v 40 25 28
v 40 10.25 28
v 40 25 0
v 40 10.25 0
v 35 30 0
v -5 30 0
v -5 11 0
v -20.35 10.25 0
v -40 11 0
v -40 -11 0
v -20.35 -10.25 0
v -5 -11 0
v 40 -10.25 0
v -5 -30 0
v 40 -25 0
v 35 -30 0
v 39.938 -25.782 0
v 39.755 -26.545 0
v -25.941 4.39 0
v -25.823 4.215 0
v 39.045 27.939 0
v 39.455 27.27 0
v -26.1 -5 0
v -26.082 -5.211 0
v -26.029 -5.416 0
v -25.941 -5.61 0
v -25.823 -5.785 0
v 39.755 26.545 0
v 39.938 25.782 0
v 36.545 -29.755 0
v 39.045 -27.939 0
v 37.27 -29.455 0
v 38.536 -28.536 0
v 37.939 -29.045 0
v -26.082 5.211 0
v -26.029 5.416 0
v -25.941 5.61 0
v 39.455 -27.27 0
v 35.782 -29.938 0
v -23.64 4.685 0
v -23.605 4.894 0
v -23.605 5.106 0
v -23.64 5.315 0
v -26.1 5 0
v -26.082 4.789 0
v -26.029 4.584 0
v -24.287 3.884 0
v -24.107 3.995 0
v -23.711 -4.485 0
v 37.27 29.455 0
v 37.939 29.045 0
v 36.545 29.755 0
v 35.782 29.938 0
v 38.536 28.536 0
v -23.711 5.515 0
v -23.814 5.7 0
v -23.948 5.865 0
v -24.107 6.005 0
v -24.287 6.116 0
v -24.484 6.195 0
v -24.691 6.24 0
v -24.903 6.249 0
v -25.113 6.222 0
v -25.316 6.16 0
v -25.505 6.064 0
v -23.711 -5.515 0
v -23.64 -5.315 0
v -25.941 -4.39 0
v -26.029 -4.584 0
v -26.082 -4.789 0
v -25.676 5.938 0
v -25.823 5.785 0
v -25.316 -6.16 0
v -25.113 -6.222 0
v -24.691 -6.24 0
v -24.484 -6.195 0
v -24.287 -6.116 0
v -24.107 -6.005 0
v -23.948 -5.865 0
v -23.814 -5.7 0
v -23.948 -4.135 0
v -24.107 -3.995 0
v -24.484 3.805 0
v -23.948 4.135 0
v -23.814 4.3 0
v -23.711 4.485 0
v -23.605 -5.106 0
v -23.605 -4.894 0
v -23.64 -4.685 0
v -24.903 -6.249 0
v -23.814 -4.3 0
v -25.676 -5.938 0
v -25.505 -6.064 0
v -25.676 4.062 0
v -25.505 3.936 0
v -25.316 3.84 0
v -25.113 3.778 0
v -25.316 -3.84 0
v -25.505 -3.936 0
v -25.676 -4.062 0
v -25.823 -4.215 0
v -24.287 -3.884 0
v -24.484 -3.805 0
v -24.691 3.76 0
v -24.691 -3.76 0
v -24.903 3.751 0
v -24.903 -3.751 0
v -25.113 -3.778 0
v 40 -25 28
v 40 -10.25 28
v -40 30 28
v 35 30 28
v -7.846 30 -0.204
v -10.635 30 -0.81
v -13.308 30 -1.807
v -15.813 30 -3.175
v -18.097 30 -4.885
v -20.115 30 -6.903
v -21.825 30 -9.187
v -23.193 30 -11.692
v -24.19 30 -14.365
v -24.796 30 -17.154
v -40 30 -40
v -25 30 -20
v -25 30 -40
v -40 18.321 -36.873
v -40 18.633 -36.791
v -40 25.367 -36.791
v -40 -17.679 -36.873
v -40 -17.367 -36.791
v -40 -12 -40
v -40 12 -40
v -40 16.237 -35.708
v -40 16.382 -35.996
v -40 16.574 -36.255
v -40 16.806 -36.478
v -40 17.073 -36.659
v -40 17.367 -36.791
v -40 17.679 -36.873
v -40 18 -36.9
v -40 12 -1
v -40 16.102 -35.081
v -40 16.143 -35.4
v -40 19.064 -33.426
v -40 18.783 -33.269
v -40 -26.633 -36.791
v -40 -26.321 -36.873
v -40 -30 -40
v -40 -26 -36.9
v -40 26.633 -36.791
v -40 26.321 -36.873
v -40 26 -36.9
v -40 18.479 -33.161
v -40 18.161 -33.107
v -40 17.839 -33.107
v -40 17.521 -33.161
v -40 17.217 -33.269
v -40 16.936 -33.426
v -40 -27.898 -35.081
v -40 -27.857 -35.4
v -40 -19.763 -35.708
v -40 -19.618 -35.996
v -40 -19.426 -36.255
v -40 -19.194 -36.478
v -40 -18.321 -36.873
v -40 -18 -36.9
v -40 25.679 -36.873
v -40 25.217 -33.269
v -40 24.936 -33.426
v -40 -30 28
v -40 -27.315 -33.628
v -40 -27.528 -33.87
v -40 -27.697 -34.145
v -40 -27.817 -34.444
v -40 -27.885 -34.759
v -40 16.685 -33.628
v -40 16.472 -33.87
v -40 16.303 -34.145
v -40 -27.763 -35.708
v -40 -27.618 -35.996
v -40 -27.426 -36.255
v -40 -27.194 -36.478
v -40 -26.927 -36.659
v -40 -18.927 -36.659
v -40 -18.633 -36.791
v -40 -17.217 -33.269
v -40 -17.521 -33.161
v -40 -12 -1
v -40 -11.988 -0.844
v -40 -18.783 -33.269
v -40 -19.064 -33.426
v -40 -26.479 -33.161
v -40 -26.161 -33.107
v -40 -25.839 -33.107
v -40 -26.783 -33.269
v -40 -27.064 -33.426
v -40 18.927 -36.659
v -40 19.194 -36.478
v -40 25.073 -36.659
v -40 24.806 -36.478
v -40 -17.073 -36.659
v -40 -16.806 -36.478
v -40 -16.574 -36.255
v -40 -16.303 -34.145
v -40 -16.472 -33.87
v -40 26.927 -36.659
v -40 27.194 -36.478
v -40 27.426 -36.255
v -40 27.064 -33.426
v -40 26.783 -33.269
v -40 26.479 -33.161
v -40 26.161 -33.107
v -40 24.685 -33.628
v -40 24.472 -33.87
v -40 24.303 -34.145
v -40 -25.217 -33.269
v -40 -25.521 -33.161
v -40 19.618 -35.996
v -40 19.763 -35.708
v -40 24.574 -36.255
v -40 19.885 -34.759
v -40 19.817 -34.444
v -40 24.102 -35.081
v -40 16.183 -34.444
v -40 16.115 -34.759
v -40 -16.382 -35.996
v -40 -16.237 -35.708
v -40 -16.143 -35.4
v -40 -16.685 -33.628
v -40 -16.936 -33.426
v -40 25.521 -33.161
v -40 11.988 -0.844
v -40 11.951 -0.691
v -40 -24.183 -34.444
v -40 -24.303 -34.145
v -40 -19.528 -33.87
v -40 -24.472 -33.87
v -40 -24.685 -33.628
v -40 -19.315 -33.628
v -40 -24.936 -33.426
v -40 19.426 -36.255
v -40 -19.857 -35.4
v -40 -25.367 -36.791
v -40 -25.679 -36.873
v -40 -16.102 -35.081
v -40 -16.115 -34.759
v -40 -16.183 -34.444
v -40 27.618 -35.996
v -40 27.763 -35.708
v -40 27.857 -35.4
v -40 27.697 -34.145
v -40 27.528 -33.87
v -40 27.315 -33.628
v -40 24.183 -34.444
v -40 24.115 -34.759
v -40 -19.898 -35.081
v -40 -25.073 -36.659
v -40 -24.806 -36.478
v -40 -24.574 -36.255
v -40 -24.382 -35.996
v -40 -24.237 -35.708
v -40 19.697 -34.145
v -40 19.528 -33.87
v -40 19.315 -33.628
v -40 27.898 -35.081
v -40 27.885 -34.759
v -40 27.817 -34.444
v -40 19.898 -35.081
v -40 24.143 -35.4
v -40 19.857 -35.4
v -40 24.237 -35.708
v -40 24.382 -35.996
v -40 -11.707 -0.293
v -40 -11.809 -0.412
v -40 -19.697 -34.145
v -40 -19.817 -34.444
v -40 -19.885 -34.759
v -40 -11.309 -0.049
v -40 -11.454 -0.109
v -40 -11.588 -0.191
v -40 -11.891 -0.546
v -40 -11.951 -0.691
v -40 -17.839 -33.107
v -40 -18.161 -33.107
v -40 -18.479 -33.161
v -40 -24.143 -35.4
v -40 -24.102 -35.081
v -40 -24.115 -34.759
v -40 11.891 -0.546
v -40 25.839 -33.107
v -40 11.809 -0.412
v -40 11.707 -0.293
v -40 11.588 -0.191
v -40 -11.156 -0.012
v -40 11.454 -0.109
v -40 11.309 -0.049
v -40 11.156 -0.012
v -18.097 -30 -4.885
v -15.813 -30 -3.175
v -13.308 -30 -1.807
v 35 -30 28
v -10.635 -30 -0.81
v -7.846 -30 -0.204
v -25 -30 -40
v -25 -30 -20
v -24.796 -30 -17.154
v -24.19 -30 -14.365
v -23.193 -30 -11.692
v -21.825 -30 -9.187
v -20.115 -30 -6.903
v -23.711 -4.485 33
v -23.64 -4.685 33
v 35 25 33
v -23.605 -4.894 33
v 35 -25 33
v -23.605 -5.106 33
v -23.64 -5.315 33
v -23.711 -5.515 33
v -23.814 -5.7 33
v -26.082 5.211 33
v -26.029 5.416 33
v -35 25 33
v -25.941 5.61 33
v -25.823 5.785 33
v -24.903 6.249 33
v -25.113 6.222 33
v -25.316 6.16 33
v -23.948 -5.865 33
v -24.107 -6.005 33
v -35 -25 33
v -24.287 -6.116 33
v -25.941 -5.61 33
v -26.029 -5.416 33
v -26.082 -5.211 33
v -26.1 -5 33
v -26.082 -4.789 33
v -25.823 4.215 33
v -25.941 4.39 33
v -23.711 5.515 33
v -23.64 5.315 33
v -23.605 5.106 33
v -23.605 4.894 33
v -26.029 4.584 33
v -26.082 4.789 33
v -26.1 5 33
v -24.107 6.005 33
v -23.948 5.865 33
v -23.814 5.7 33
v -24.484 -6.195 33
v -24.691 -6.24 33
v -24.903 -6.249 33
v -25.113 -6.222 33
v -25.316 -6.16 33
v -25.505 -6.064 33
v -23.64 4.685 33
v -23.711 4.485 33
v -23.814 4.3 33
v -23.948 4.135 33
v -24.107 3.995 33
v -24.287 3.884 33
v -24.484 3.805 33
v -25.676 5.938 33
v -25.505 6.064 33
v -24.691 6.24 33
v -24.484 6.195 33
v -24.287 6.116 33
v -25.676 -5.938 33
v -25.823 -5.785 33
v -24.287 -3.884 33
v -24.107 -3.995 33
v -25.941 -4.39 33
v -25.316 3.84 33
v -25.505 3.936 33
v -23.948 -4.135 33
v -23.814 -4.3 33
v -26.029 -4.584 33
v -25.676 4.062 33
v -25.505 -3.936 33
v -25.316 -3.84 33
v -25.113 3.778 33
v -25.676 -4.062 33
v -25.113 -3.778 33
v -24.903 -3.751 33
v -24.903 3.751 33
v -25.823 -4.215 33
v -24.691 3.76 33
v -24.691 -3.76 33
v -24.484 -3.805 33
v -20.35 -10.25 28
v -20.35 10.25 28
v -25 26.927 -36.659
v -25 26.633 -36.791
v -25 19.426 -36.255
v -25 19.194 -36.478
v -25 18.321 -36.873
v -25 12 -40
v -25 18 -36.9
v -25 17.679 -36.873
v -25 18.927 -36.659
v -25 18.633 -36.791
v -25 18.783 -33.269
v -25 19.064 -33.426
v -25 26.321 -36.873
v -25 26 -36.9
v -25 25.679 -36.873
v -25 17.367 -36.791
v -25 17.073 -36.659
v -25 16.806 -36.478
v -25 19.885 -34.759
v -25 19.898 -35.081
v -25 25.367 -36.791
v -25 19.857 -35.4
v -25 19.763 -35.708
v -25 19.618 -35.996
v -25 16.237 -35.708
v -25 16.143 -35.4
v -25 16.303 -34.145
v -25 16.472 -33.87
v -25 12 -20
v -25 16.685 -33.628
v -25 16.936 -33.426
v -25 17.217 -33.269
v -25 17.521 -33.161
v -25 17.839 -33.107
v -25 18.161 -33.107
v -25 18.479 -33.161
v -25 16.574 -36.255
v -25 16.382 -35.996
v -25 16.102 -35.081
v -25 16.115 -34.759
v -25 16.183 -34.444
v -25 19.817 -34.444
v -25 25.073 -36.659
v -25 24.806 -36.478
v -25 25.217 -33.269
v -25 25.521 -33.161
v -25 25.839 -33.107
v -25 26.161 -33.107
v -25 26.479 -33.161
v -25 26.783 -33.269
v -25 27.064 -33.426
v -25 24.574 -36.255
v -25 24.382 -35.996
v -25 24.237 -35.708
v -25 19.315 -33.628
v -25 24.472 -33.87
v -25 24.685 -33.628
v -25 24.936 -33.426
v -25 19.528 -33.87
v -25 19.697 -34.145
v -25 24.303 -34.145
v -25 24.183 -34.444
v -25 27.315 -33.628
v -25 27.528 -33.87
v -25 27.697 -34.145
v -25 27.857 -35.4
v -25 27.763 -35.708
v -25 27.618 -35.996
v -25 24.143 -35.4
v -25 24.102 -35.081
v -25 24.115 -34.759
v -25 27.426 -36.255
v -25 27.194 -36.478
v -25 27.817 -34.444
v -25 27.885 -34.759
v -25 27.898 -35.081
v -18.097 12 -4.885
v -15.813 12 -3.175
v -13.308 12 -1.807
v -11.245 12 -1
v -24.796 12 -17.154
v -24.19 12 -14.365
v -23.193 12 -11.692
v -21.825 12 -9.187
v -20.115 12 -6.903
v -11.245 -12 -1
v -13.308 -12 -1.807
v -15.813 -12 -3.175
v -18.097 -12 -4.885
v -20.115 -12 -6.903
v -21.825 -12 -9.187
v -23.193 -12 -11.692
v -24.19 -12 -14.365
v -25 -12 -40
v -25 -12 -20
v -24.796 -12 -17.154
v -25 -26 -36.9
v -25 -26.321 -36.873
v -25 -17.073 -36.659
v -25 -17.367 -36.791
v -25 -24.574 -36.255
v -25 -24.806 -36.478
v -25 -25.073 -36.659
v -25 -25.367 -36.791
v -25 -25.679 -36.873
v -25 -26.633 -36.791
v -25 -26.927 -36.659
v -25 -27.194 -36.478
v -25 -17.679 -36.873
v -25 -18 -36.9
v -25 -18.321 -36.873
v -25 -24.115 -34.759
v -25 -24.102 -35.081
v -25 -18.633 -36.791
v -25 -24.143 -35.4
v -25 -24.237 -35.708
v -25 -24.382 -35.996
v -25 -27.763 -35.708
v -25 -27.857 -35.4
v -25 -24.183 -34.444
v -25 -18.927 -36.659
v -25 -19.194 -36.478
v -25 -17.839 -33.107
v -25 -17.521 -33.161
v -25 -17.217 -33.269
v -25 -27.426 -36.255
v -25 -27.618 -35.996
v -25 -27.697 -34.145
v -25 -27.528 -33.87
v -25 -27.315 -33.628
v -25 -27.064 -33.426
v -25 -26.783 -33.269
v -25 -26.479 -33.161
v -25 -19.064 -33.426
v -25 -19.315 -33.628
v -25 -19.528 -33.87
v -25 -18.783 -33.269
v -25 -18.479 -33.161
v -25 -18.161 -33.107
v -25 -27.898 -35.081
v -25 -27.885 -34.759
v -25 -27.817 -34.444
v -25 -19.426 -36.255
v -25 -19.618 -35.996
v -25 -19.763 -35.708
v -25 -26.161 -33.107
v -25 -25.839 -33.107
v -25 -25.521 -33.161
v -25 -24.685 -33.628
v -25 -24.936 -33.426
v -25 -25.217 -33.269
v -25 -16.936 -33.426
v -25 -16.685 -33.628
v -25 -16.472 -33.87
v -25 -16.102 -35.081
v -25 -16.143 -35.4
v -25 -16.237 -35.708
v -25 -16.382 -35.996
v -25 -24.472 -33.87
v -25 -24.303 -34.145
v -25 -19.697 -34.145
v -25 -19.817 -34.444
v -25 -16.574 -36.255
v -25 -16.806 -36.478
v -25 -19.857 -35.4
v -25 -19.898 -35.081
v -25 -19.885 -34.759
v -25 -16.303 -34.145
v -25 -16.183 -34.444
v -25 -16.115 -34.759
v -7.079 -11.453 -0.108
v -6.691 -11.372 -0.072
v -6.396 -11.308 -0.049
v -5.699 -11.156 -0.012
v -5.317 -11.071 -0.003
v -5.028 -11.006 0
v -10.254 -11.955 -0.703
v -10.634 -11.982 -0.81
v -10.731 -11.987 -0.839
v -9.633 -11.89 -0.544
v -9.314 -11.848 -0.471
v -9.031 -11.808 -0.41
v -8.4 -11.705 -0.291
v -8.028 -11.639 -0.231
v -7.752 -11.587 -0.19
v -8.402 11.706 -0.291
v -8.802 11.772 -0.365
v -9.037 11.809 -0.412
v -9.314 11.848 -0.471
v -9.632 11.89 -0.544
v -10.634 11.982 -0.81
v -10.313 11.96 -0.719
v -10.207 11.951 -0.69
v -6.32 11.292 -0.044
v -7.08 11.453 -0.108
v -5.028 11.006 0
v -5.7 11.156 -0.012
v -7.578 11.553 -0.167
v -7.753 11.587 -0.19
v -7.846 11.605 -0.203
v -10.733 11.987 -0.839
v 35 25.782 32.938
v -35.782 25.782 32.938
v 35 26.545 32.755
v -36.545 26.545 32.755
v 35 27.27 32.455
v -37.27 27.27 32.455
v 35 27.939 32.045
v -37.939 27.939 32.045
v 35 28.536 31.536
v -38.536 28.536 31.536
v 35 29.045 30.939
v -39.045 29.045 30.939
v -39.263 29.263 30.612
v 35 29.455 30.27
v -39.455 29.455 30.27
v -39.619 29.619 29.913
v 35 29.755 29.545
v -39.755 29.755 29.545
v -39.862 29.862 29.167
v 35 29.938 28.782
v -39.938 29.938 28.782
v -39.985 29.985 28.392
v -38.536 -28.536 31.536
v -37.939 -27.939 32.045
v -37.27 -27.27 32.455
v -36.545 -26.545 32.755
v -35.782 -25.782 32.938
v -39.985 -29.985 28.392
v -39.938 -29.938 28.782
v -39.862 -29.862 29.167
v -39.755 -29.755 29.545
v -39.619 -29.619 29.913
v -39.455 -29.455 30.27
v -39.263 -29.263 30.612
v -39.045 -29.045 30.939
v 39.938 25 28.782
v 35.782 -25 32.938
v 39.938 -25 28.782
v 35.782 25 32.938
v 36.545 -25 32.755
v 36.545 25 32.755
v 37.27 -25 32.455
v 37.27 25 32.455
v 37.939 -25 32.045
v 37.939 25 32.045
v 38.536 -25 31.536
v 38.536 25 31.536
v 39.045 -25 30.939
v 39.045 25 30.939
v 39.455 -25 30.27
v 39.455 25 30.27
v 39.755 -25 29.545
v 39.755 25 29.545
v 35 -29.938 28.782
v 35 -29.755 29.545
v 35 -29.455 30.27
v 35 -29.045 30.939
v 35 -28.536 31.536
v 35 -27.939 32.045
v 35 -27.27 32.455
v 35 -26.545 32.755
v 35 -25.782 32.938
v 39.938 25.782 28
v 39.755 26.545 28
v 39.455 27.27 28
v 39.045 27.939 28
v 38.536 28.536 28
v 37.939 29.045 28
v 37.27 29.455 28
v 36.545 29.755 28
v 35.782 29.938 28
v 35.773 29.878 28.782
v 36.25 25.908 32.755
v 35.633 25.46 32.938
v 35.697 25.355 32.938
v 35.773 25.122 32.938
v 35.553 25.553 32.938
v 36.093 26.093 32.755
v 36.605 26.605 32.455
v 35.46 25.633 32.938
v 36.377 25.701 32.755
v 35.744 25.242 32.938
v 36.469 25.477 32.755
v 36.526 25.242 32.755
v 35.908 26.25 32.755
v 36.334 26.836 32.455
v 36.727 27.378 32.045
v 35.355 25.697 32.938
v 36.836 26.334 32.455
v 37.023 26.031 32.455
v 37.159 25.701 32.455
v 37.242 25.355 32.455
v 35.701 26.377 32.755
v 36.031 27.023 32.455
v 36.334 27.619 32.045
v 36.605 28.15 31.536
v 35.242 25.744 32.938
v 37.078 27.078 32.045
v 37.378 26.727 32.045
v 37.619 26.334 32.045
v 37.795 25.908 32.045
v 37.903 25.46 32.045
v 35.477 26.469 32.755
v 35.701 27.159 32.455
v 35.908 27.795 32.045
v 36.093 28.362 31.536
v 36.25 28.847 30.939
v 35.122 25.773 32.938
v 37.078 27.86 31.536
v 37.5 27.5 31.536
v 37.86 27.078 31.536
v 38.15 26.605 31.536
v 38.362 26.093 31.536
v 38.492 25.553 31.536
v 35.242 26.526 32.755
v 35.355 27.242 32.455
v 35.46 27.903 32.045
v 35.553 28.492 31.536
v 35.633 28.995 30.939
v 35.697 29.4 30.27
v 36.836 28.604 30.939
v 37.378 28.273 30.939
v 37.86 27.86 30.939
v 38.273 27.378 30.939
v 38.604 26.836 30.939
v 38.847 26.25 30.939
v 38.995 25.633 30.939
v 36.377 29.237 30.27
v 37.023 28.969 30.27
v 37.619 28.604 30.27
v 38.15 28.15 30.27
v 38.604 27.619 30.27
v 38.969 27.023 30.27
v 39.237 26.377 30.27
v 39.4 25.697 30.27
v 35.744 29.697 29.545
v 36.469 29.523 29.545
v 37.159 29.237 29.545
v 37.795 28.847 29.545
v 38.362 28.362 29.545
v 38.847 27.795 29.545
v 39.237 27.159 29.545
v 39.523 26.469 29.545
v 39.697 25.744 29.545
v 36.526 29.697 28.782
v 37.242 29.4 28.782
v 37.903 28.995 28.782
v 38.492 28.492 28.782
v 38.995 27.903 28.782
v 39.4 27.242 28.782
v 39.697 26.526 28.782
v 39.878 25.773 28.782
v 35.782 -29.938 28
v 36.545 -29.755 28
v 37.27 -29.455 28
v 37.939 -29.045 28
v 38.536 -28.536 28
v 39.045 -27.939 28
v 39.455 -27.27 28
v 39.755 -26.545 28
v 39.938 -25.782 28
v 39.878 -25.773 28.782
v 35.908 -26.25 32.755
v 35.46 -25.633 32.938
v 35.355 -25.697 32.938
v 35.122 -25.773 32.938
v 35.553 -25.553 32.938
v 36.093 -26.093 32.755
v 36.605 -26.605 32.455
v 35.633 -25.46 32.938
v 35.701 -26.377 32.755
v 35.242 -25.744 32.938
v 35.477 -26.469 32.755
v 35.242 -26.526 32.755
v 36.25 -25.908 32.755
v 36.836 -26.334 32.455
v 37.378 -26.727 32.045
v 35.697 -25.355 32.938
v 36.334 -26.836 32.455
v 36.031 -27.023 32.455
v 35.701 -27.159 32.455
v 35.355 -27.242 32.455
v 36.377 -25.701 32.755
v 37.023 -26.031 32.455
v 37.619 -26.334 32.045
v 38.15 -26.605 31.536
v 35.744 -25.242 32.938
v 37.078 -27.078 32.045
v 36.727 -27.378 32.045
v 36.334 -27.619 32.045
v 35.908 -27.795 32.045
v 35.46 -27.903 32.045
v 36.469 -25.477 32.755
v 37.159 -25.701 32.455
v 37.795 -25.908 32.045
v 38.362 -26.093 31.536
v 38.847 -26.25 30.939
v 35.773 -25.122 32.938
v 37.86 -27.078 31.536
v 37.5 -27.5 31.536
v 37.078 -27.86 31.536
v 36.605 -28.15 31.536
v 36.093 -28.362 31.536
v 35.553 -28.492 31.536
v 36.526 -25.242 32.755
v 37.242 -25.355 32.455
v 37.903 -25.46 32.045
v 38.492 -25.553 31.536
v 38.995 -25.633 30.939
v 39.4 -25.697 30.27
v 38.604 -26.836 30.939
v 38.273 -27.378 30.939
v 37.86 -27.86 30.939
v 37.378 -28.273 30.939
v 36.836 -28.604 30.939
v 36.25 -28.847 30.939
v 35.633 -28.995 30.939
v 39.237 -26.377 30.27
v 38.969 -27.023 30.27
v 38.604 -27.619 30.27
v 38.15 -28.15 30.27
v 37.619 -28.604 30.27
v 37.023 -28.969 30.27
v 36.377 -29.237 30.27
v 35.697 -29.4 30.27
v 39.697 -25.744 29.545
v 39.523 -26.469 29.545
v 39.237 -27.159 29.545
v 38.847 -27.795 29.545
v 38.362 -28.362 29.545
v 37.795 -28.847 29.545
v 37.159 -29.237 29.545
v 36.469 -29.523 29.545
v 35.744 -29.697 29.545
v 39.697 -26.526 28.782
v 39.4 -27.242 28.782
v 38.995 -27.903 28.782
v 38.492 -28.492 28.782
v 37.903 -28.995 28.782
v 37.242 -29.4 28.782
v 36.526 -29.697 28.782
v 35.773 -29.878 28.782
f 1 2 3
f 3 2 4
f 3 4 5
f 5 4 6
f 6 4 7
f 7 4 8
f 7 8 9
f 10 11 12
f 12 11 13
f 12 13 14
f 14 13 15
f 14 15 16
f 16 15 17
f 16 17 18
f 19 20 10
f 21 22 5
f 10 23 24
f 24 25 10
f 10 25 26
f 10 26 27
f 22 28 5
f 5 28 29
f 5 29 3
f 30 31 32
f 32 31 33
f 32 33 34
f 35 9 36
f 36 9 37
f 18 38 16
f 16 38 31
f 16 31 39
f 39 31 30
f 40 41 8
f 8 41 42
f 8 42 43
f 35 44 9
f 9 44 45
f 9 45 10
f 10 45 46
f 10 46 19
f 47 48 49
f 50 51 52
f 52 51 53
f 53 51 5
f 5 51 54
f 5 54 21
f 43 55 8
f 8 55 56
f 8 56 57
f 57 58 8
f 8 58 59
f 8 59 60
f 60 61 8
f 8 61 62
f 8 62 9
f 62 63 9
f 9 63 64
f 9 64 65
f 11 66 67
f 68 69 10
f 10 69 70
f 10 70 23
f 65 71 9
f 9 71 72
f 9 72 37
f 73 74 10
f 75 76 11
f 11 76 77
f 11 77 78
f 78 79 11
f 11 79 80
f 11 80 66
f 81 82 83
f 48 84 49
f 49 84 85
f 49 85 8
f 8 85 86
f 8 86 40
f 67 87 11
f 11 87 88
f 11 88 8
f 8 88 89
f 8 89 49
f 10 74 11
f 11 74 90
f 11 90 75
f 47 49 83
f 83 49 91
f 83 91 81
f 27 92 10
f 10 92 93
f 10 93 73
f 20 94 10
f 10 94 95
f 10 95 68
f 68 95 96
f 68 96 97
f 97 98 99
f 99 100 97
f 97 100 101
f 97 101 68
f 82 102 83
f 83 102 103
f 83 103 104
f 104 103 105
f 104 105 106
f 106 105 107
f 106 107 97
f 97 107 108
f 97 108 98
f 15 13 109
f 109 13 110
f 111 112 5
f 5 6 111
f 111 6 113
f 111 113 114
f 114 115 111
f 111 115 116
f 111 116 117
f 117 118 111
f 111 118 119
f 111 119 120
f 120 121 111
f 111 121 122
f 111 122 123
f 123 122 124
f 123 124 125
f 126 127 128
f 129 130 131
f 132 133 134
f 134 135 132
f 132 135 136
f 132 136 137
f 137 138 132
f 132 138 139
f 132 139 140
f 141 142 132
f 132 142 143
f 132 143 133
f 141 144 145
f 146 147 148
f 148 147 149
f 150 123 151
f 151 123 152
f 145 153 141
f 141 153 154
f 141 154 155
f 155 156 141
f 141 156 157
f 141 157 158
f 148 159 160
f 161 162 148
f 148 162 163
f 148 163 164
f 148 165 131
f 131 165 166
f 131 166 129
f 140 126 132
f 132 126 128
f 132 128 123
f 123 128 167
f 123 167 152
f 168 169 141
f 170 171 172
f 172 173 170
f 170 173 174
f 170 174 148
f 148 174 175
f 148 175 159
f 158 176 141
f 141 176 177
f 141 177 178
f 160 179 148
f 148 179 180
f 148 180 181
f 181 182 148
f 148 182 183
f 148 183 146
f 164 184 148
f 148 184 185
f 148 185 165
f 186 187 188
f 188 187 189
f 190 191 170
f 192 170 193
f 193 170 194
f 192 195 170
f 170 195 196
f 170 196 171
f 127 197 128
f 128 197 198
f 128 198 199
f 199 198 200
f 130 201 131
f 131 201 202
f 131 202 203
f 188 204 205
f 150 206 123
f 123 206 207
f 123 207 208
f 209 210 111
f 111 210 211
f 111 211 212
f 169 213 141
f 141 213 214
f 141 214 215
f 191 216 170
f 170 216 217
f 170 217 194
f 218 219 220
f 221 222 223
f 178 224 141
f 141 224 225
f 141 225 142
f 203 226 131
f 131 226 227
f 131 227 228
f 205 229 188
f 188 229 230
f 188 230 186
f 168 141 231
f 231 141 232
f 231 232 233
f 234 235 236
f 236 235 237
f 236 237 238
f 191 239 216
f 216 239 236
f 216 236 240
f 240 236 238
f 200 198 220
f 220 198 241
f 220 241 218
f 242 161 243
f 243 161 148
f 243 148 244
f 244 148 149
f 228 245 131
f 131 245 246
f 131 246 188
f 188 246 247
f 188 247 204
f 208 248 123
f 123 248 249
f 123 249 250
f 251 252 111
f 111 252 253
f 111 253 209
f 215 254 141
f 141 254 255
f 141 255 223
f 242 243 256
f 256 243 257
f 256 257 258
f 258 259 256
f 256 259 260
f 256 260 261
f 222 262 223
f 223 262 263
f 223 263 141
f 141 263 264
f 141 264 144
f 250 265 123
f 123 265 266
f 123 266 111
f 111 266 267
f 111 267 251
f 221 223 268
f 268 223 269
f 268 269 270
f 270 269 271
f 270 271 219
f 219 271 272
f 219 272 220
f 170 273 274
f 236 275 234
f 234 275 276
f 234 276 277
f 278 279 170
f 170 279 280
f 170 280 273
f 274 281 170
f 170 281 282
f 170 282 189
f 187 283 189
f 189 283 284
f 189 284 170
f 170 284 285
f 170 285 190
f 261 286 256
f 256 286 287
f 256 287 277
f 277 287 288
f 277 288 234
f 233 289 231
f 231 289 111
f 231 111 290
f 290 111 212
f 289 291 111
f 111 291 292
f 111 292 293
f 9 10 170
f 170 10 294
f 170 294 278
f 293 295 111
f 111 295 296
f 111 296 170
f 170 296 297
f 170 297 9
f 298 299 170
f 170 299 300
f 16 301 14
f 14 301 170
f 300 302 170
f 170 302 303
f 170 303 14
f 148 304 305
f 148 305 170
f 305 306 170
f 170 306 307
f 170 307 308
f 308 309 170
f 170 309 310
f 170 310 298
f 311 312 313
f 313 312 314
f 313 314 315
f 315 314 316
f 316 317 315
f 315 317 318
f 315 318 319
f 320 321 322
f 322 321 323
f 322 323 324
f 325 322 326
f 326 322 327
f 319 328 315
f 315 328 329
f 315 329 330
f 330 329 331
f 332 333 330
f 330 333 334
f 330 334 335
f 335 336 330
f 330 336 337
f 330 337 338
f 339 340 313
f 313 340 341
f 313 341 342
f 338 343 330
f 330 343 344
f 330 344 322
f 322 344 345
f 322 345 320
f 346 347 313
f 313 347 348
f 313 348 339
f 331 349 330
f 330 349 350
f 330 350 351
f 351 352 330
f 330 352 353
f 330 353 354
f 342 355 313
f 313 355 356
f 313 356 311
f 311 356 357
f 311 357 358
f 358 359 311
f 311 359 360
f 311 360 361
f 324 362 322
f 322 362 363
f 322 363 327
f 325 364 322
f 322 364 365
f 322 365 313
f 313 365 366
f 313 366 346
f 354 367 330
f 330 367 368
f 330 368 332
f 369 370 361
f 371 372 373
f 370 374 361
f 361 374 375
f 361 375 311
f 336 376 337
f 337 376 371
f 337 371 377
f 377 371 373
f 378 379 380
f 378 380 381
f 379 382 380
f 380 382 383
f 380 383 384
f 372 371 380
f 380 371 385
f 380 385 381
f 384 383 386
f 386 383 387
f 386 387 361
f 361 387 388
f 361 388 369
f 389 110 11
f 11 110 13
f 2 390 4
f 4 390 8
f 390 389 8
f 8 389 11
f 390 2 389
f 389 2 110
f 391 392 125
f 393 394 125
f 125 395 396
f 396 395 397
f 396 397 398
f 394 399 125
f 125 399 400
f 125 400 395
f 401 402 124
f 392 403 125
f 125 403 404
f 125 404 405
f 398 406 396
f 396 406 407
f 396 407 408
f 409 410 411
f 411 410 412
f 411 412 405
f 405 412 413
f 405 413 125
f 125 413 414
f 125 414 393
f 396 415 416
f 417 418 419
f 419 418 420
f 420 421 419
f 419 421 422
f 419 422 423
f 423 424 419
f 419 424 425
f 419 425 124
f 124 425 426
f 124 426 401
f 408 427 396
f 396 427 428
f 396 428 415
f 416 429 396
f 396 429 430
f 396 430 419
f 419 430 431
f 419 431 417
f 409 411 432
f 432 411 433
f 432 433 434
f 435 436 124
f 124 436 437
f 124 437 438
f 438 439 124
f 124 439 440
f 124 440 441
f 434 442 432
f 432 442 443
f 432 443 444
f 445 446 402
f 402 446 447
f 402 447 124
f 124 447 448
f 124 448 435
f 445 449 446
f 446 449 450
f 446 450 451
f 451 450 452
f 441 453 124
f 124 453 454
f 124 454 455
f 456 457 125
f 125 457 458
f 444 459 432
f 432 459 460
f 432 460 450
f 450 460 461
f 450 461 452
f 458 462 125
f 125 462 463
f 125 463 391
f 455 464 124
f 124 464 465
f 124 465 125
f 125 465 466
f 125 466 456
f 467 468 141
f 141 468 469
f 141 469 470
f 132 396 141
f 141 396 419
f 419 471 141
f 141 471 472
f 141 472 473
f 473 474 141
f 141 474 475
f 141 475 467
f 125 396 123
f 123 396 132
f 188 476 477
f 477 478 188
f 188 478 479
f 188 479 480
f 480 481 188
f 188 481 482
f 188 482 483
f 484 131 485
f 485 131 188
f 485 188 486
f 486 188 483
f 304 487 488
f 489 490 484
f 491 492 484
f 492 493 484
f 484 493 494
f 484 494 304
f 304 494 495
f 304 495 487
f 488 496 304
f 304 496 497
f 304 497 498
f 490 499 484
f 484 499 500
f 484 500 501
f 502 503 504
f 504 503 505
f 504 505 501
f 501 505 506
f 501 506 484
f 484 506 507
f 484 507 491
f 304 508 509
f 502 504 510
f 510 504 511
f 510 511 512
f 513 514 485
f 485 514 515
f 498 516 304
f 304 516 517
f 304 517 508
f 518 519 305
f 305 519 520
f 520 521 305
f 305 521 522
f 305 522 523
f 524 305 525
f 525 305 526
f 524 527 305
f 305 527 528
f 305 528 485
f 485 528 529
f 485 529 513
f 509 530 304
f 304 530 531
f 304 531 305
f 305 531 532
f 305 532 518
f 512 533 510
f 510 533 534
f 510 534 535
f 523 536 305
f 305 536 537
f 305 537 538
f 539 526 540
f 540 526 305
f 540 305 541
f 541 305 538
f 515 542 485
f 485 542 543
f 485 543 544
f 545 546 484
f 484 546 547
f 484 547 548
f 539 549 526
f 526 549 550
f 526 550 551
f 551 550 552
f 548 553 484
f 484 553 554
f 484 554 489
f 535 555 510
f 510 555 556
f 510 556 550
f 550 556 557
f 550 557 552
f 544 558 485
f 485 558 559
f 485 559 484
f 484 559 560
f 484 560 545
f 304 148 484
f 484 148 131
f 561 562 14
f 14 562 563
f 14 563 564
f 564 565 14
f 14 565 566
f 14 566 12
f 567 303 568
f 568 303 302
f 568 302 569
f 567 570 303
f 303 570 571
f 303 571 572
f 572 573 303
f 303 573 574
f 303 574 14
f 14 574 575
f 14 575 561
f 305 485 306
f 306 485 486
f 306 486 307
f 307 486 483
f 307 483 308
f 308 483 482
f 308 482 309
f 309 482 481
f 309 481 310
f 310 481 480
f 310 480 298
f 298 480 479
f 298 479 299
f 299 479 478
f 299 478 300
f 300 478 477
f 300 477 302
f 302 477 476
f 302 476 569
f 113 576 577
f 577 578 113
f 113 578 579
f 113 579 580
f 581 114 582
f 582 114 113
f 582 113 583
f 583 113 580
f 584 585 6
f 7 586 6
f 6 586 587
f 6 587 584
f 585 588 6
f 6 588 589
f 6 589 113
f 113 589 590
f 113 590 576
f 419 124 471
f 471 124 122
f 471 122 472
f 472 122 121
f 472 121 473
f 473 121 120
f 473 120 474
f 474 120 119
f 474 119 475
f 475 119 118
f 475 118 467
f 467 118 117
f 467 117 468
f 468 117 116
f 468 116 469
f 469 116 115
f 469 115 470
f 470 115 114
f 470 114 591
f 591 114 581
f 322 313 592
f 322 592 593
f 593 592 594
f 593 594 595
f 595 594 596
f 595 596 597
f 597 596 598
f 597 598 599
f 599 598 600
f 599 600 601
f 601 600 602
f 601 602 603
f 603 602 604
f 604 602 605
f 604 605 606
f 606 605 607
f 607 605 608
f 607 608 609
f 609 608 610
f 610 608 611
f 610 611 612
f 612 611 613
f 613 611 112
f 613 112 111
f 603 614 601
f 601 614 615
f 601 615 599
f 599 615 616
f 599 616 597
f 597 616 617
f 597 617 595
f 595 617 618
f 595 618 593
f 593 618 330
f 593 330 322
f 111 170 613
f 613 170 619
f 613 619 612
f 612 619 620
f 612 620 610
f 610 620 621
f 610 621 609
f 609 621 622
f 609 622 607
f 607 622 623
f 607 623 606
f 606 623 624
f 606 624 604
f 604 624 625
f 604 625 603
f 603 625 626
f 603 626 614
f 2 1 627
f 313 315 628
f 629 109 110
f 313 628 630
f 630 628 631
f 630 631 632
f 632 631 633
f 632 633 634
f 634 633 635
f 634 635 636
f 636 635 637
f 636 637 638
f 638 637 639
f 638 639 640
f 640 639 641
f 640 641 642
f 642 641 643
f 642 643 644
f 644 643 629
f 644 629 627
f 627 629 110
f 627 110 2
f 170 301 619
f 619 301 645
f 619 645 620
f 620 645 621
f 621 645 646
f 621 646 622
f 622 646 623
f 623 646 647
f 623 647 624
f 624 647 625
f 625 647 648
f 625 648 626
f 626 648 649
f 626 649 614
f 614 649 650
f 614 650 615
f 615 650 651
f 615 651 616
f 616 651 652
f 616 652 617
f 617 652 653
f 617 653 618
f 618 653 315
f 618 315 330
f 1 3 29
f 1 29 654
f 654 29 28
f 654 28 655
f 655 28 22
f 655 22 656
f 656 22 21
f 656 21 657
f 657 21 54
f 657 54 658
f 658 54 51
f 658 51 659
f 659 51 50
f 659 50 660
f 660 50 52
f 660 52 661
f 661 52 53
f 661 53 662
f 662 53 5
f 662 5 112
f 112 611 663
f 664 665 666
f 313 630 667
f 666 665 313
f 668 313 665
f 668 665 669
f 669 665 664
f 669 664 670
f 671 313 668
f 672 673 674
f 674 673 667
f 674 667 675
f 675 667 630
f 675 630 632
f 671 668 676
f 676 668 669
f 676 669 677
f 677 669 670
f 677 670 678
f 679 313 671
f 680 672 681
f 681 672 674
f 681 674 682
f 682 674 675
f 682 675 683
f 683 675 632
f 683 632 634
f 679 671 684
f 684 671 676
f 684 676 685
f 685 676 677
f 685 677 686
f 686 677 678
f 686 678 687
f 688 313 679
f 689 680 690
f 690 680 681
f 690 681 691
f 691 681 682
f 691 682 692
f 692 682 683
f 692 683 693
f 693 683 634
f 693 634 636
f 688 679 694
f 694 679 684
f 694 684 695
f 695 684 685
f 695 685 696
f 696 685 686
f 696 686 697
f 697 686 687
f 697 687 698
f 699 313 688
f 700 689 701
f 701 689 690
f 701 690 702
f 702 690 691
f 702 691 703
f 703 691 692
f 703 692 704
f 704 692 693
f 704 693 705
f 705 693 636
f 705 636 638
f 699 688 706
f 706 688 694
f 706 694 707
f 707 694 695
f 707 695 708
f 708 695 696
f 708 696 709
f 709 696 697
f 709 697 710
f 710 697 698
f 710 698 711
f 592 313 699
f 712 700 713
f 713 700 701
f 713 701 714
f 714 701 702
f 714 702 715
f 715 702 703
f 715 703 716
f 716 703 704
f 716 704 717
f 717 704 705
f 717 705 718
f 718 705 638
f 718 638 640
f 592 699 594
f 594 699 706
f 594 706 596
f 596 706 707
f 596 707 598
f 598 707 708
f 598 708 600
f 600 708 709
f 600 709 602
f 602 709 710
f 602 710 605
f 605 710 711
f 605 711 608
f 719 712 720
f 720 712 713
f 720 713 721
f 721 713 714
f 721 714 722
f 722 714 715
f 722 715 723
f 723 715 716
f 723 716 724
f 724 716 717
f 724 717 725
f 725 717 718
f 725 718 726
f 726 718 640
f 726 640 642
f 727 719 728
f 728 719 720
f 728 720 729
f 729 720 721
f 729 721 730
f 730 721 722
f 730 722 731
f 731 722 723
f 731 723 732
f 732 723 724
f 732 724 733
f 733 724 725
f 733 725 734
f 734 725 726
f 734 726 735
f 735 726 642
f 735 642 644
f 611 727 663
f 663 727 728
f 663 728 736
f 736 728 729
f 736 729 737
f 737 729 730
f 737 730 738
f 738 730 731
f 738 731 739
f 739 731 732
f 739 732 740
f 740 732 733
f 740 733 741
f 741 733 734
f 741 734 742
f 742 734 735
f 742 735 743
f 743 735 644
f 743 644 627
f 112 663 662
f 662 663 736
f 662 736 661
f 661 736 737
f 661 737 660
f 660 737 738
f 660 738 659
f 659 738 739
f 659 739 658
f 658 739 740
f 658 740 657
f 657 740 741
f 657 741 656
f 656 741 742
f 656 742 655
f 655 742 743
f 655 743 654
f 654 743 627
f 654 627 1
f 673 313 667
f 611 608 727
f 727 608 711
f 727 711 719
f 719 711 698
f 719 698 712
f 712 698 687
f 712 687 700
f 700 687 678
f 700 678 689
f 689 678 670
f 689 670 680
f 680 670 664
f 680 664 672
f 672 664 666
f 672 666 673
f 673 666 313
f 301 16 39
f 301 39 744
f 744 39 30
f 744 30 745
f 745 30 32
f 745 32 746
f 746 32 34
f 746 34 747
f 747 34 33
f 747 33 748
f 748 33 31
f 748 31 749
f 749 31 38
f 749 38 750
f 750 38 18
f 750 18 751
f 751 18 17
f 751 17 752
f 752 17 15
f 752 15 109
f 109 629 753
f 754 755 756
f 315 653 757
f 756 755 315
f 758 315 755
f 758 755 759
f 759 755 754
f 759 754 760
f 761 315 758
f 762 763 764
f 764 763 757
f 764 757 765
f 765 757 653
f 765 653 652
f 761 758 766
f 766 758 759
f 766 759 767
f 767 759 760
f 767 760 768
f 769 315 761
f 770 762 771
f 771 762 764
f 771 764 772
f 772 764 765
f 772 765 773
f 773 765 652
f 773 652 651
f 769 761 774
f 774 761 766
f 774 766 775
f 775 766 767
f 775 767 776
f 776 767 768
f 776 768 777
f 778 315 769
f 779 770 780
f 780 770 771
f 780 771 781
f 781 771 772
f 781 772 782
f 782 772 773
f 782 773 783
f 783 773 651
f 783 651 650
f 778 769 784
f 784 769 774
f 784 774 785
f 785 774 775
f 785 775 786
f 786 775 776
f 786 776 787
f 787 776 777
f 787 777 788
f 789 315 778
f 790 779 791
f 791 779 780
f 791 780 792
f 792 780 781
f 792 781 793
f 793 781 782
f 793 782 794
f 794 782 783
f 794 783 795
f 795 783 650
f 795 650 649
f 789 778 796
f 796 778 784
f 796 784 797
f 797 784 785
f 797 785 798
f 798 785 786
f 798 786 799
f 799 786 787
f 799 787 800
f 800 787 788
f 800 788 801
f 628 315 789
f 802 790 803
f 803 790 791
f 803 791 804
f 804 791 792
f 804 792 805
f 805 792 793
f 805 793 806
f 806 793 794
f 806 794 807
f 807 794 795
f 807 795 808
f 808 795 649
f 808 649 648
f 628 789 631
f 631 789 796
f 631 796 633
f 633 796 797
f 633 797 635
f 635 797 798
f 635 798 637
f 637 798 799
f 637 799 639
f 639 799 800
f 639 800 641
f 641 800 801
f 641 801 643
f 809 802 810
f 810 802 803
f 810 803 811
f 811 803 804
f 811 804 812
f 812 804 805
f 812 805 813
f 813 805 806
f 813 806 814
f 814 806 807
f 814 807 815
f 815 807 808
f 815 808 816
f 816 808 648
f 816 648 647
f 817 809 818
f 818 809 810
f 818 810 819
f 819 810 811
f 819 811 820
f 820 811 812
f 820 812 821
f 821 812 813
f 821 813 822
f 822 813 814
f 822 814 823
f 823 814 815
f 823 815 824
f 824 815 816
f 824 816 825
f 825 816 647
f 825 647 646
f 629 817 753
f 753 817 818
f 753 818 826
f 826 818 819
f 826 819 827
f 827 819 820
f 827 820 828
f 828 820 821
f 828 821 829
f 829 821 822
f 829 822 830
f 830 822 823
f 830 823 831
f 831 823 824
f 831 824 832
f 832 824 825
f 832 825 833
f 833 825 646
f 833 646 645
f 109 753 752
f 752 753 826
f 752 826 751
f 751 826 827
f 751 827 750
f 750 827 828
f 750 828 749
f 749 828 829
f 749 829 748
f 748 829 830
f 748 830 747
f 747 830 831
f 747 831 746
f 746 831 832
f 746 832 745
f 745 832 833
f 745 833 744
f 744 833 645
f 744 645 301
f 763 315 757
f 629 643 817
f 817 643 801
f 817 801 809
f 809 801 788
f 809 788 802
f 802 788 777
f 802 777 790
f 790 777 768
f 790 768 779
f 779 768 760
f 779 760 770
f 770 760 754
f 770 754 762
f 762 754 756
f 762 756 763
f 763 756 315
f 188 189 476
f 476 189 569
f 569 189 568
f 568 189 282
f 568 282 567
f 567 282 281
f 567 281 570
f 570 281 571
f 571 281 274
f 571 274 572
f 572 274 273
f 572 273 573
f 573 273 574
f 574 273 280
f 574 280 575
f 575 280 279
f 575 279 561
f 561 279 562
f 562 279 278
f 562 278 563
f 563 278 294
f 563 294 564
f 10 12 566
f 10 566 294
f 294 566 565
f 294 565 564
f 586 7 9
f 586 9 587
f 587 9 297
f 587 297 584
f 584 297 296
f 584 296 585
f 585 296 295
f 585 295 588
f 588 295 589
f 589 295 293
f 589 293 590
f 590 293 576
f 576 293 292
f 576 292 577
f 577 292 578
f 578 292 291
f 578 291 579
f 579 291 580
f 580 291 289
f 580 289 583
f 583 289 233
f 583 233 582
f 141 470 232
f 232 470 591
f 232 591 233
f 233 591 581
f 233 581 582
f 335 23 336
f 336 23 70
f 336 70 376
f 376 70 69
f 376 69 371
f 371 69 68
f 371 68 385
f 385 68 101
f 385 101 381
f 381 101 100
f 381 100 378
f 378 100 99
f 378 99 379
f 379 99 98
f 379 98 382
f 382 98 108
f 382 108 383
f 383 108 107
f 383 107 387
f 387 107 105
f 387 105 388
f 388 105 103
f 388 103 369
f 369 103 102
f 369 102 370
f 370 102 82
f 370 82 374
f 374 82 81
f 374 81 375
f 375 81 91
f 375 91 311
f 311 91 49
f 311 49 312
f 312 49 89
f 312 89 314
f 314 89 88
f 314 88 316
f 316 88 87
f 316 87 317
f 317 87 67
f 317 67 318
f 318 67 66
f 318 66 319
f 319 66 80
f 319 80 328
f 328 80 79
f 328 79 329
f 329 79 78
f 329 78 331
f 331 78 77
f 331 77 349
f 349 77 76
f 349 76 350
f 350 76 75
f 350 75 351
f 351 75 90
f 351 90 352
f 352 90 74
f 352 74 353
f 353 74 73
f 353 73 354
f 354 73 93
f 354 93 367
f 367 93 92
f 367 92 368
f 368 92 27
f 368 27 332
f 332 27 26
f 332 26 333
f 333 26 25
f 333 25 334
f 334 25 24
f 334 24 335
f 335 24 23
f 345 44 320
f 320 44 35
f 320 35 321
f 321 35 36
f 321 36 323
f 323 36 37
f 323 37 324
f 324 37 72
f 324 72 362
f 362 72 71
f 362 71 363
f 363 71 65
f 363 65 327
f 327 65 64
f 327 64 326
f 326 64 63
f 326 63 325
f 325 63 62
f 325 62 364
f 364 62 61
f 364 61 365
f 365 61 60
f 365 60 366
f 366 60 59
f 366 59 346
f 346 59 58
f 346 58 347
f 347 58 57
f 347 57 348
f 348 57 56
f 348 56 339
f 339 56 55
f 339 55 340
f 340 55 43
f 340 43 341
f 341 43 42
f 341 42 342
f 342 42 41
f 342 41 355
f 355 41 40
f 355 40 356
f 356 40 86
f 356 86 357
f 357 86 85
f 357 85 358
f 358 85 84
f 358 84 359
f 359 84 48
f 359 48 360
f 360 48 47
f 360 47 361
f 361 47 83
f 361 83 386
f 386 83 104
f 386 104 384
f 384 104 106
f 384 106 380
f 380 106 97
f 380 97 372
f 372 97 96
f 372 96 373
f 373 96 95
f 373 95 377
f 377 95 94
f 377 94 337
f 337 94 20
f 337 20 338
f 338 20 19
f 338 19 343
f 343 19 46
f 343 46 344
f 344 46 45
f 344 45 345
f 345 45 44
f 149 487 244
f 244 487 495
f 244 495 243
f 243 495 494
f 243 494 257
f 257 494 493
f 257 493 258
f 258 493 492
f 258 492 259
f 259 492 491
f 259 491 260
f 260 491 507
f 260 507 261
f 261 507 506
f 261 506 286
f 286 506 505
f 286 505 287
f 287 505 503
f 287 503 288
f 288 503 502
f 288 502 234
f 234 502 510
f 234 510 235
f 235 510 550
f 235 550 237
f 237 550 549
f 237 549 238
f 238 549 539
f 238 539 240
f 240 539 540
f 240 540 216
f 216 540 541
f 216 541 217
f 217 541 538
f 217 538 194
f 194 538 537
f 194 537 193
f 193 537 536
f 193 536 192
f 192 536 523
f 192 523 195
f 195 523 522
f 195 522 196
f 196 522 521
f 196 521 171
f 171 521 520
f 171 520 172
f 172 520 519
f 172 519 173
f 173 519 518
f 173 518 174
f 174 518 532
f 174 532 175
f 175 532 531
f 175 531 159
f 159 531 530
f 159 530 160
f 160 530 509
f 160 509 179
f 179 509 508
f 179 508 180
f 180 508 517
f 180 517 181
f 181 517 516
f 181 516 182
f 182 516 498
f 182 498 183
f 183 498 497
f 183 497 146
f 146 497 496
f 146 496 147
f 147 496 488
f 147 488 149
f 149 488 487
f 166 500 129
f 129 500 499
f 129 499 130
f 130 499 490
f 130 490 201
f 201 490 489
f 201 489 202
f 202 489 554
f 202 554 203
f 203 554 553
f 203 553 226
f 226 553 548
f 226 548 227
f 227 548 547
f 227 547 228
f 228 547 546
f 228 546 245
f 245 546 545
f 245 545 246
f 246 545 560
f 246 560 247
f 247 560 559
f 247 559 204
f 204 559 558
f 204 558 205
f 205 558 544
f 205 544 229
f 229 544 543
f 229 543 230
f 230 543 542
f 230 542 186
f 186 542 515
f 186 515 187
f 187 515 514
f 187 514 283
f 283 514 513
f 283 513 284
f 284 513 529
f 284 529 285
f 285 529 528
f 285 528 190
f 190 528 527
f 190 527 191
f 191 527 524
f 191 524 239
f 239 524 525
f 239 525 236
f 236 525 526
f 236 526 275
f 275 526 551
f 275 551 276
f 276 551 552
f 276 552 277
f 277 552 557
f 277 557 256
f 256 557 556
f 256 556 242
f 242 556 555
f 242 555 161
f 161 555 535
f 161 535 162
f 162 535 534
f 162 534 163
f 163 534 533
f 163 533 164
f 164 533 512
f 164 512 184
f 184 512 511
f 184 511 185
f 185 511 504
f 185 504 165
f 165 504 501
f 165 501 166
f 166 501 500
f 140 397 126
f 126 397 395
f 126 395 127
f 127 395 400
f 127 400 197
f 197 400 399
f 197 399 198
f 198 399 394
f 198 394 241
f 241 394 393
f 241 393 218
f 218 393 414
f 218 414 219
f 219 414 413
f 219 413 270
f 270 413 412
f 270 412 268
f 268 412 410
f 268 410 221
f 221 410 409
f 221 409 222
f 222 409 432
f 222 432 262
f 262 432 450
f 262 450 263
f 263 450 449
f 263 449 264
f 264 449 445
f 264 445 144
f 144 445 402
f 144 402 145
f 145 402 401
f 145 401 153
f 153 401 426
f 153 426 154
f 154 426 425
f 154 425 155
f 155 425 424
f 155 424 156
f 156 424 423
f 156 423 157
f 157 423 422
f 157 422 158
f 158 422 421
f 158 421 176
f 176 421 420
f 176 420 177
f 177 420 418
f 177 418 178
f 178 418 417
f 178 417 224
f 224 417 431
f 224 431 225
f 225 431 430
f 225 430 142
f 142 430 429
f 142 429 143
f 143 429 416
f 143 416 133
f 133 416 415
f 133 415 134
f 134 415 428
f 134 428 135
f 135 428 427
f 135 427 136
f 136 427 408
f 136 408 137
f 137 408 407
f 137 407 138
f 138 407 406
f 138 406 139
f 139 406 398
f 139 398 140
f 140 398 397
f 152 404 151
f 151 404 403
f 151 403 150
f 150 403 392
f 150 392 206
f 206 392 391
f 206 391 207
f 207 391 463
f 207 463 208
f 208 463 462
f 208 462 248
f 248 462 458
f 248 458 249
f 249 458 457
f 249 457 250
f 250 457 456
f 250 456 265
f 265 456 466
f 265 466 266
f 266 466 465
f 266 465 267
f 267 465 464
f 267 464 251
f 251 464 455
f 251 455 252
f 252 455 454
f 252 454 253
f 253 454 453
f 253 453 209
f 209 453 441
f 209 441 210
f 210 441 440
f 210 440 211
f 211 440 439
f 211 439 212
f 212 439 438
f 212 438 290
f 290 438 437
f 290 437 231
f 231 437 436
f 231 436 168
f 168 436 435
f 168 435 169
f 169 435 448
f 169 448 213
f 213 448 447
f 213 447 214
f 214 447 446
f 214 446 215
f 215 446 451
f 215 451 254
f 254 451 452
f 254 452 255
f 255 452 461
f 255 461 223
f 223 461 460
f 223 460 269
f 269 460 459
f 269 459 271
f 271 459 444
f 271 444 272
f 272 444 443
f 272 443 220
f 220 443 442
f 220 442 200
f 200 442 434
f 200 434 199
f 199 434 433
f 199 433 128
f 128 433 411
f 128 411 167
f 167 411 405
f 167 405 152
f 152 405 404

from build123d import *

# Parameters (mm, degrees)
SKETCH_2_W          = 80
SKETCH_2_H          = 60
EXTRUDE_2_DEPTH     = 33
SKETCH_3_W          = 40.7
SKETCH_3_H          = 20.5
CUT_EXTRUDE_1_DEPTH = 28
SKETCH_4_W          = 19.65
SKETCH_4_H          = 20.5
EXTRUDE_3_DEPTH     = 28
SKETCH_5_W          = 19.65
SKETCH_5_H          = 20.5
CUT_EXTRUDE_4_DEPTH = 28
SKETCH_10_W         = 15
SKETCH_10_H         = 18
EXTRUDE_6_DEPTH     = 40
M3X0_5_1_D          = 2.5
FILLET_2_R          = 20
FILLET_START        = -41
FILLET_7_DEPTH      = 81
FILLET_START_2      = -31
FILLET_7_2_DEPTH    = 62
FILLET_8_R          = 5
FILLET_10_R         = 1
M3X0_5_2_D          = 2.5
SKETCH_15_R         = 1.9
CUT_EXTRUDE_7_DEPTH = 65.031242484


with BuildPart() as part:
    # ｽｹｯﾁ2 → ﾎﾞｽ - 押し出し2 (new body)
    with BuildSketch(Plane.XY):
        Rectangle(SKETCH_2_W, SKETCH_2_H)
    extrude(amount=EXTRUDE_2_DEPTH)

    # ｽｹｯﾁ3 → ｶｯﾄ - 押し出し1 (cut)
    with BuildSketch(Plane.XY):
        Rectangle(SKETCH_3_W, SKETCH_3_H)
    extrude(amount=CUT_EXTRUDE_1_DEPTH, mode=Mode.SUBTRACT)

    # ｽｹｯﾁ4 → ﾎﾞｽ - 押し出し3 (add)
    with BuildSketch(Plane.XY):
        with Locations((30.175, 0)):
            Rectangle(SKETCH_4_W, SKETCH_4_H)
    extrude(amount=EXTRUDE_3_DEPTH)

    # ｽｹｯﾁ5 → ｶｯﾄ - 押し出し4 (cut)
    with BuildSketch(Plane.XY):
        with Locations((30.175, 0)):
            Rectangle(SKETCH_5_W, SKETCH_5_H)
    extrude(amount=CUT_EXTRUDE_4_DEPTH, mode=Mode.SUBTRACT)

    # ｽｹｯﾁ10 → ﾎﾞｽ - 押し出し6 (add)
    with BuildSketch(Plane.XY):
        with Locations((-32.5, 21)):
            Rectangle(SKETCH_10_W, SKETCH_10_H)
        with Locations((-32.5, -21)):
            Rectangle(SKETCH_10_W, SKETCH_10_H)
    extrude(amount=-EXTRUDE_6_DEPTH)

    # M3x0.5 ねじ穴1 (through all)
    with Locations(Plane(origin=(-25, 0, 0), x_dir=(0, 0, -1), z_dir=(1, 0, 0))):
        with Locations((35, 18), (35, -18), (35, 26), (35, -26)):
            Hole(M3X0_5_1_D / 2)

    # ﾌｨﾚｯﾄ2
    fillet_2_edges = [part.edges().sort_by_distance(p)[0] for p in [
        (-25, 21, 0),
        (-25, -21, 0),
    ]]
    fillet(fillet_2_edges, radius=FILLET_2_R)

    # ﾌｨﾚｯﾄ7: read off the stored shape, not the designer's step
    # ﾌｨﾚｯﾄ7 outline → ﾌｨﾚｯﾄ7 (cut)
    with BuildSketch(Plane.YZ.offset(FILLET_START)):
        with BuildLine():
            ThreePointArc((-30, 28), (-28.535533906, 31.535533906), (-25, 33))
            Line((-25, 33), (-30, 33))
            Line((-30, 33), (-30, 28))
        make_face()
        with BuildLine():
            ThreePointArc((25, 33), (28.535533906, 31.535533906), (30, 28))
            Line((30, 28), (30, 33))
            Line((30, 33), (25, 33))
        make_face()
    extrude(amount=FILLET_7_DEPTH, mode=Mode.SUBTRACT)

    # Fillet 7 2 outline → Fillet 7 2 (cut)
    with BuildSketch(Plane(origin=(0, 0, 0), x_dir=(1, 0, 0), z_dir=(0, 1, 0)).offset(FILLET_START_2)):
        with BuildLine():
            ThreePointArc((40, -28), (38.535533906, -31.535533906), (35, -33))
            Line((35, -33), (40, -33))
            Line((40, -33), (40, -28))
        make_face()
        with BuildLine():
            ThreePointArc((-35, -33), (-38.535533906, -31.535533906), (-40, -28))
            Line((-40, -28), (-40, -33))
            Line((-40, -33), (-35, -33))
        make_face()
    extrude(amount=FILLET_7_2_DEPTH, mode=Mode.SUBTRACT)

    # ﾌｨﾚｯﾄ8
    # the kernel refuses this fillet: 5 mm, written as the material it takes off along each edge
    with BuildSketch(Plane(origin=(35, 25, 28), x_dir=(1, 0, 0), z_dir=(0, 1, 0))) as fillet_8_piece_1_section:
        Polygon((0, 0), (FILLET_8_R, 0), (FILLET_8_R, -FILLET_8_R), (0, -FILLET_8_R), align=None)
    fillet_8_piece_1 = extrude(amount=FILLET_8_R, mode=Mode.PRIVATE)
    fillet_8_piece_1 = fillet_8_piece_1 - Plane(origin=(35, 25, 28), x_dir=(-0.7071067811865475, 0, -0.7071067811865475), z_dir=(0, 1, 0)) * Sphere(FILLET_8_R, mode=Mode.PRIVATE)
    add(fillet_8_piece_1, mode=Mode.SUBTRACT)
    with BuildSketch(Plane(origin=(35, -25, 28), x_dir=(0, -1, 0), z_dir=(1, 0, 0))) as fillet_8_piece_2_section:
        Polygon((0, 0), (FILLET_8_R, 0), (FILLET_8_R, -FILLET_8_R), (0, -FILLET_8_R), align=None)
    fillet_8_piece_2 = extrude(amount=FILLET_8_R, mode=Mode.PRIVATE)
    fillet_8_piece_2 = fillet_8_piece_2 - Plane(origin=(35, -25, 28), x_dir=(0, 0.7071067811865475, -0.7071067811865475), z_dir=(1, 0, 0)) * Sphere(FILLET_8_R, mode=Mode.PRIVATE)
    add(fillet_8_piece_2, mode=Mode.SUBTRACT)
    with BuildSketch(Plane(origin=(40, -30, -12.5), x_dir=(0, 1, 0), z_dir=(0, 0, 1)), Plane(origin=(40, 30, -12.5), x_dir=(-1, 0, 0), z_dir=(0, 0, 1))) as fillet_8_piece_3:
        with BuildLine():
            CenterArc((FILLET_8_R, FILLET_8_R), FILLET_8_R, 180, 90)
            Line((0, FILLET_8_R), (0, 0))
            Line((0, 0), (FILLET_8_R, 0))
        make_face()
    extrude(amount=40.5, mode=Mode.SUBTRACT)

    # ﾌｨﾚｯﾄ10
    fillet_10_edges = [part.edges().sort_by_distance(p)[0] for p in [
        (-22.5, 12, 0),
        (-22.5, -12, 0),
    ]]
    fillet(fillet_10_edges, radius=FILLET_10_R)

    # M3x0.5 ねじ穴2 (through all)
    with Locations(Plane(origin=(0, 0, 0), x_dir=(-1, 0, 0), z_dir=(0, 0, -1))):
        with Locations((24.85, 5), (24.85, -5)):
            Hole(M3X0_5_2_D / 2)

    # ｽｹｯﾁ15 → ｶｯﾄ - 押し出し7 (cut, through all)
    with BuildSketch(Plane(origin=(0, 0, 0), x_dir=(0, 0, -1), z_dir=(1, 0, 0))):
        with Locations((35, 26)):
            Circle(SKETCH_15_R)
        with Locations((35, 18)):
            Circle(SKETCH_15_R)
        with Locations((35, -18)):
            Circle(SKETCH_15_R)
        with Locations((35, -26)):
            Circle(SKETCH_15_R)
    extrude(amount=-CUT_EXTRUDE_7_DEPTH, mode=Mode.SUBTRACT)


solid = part.part
